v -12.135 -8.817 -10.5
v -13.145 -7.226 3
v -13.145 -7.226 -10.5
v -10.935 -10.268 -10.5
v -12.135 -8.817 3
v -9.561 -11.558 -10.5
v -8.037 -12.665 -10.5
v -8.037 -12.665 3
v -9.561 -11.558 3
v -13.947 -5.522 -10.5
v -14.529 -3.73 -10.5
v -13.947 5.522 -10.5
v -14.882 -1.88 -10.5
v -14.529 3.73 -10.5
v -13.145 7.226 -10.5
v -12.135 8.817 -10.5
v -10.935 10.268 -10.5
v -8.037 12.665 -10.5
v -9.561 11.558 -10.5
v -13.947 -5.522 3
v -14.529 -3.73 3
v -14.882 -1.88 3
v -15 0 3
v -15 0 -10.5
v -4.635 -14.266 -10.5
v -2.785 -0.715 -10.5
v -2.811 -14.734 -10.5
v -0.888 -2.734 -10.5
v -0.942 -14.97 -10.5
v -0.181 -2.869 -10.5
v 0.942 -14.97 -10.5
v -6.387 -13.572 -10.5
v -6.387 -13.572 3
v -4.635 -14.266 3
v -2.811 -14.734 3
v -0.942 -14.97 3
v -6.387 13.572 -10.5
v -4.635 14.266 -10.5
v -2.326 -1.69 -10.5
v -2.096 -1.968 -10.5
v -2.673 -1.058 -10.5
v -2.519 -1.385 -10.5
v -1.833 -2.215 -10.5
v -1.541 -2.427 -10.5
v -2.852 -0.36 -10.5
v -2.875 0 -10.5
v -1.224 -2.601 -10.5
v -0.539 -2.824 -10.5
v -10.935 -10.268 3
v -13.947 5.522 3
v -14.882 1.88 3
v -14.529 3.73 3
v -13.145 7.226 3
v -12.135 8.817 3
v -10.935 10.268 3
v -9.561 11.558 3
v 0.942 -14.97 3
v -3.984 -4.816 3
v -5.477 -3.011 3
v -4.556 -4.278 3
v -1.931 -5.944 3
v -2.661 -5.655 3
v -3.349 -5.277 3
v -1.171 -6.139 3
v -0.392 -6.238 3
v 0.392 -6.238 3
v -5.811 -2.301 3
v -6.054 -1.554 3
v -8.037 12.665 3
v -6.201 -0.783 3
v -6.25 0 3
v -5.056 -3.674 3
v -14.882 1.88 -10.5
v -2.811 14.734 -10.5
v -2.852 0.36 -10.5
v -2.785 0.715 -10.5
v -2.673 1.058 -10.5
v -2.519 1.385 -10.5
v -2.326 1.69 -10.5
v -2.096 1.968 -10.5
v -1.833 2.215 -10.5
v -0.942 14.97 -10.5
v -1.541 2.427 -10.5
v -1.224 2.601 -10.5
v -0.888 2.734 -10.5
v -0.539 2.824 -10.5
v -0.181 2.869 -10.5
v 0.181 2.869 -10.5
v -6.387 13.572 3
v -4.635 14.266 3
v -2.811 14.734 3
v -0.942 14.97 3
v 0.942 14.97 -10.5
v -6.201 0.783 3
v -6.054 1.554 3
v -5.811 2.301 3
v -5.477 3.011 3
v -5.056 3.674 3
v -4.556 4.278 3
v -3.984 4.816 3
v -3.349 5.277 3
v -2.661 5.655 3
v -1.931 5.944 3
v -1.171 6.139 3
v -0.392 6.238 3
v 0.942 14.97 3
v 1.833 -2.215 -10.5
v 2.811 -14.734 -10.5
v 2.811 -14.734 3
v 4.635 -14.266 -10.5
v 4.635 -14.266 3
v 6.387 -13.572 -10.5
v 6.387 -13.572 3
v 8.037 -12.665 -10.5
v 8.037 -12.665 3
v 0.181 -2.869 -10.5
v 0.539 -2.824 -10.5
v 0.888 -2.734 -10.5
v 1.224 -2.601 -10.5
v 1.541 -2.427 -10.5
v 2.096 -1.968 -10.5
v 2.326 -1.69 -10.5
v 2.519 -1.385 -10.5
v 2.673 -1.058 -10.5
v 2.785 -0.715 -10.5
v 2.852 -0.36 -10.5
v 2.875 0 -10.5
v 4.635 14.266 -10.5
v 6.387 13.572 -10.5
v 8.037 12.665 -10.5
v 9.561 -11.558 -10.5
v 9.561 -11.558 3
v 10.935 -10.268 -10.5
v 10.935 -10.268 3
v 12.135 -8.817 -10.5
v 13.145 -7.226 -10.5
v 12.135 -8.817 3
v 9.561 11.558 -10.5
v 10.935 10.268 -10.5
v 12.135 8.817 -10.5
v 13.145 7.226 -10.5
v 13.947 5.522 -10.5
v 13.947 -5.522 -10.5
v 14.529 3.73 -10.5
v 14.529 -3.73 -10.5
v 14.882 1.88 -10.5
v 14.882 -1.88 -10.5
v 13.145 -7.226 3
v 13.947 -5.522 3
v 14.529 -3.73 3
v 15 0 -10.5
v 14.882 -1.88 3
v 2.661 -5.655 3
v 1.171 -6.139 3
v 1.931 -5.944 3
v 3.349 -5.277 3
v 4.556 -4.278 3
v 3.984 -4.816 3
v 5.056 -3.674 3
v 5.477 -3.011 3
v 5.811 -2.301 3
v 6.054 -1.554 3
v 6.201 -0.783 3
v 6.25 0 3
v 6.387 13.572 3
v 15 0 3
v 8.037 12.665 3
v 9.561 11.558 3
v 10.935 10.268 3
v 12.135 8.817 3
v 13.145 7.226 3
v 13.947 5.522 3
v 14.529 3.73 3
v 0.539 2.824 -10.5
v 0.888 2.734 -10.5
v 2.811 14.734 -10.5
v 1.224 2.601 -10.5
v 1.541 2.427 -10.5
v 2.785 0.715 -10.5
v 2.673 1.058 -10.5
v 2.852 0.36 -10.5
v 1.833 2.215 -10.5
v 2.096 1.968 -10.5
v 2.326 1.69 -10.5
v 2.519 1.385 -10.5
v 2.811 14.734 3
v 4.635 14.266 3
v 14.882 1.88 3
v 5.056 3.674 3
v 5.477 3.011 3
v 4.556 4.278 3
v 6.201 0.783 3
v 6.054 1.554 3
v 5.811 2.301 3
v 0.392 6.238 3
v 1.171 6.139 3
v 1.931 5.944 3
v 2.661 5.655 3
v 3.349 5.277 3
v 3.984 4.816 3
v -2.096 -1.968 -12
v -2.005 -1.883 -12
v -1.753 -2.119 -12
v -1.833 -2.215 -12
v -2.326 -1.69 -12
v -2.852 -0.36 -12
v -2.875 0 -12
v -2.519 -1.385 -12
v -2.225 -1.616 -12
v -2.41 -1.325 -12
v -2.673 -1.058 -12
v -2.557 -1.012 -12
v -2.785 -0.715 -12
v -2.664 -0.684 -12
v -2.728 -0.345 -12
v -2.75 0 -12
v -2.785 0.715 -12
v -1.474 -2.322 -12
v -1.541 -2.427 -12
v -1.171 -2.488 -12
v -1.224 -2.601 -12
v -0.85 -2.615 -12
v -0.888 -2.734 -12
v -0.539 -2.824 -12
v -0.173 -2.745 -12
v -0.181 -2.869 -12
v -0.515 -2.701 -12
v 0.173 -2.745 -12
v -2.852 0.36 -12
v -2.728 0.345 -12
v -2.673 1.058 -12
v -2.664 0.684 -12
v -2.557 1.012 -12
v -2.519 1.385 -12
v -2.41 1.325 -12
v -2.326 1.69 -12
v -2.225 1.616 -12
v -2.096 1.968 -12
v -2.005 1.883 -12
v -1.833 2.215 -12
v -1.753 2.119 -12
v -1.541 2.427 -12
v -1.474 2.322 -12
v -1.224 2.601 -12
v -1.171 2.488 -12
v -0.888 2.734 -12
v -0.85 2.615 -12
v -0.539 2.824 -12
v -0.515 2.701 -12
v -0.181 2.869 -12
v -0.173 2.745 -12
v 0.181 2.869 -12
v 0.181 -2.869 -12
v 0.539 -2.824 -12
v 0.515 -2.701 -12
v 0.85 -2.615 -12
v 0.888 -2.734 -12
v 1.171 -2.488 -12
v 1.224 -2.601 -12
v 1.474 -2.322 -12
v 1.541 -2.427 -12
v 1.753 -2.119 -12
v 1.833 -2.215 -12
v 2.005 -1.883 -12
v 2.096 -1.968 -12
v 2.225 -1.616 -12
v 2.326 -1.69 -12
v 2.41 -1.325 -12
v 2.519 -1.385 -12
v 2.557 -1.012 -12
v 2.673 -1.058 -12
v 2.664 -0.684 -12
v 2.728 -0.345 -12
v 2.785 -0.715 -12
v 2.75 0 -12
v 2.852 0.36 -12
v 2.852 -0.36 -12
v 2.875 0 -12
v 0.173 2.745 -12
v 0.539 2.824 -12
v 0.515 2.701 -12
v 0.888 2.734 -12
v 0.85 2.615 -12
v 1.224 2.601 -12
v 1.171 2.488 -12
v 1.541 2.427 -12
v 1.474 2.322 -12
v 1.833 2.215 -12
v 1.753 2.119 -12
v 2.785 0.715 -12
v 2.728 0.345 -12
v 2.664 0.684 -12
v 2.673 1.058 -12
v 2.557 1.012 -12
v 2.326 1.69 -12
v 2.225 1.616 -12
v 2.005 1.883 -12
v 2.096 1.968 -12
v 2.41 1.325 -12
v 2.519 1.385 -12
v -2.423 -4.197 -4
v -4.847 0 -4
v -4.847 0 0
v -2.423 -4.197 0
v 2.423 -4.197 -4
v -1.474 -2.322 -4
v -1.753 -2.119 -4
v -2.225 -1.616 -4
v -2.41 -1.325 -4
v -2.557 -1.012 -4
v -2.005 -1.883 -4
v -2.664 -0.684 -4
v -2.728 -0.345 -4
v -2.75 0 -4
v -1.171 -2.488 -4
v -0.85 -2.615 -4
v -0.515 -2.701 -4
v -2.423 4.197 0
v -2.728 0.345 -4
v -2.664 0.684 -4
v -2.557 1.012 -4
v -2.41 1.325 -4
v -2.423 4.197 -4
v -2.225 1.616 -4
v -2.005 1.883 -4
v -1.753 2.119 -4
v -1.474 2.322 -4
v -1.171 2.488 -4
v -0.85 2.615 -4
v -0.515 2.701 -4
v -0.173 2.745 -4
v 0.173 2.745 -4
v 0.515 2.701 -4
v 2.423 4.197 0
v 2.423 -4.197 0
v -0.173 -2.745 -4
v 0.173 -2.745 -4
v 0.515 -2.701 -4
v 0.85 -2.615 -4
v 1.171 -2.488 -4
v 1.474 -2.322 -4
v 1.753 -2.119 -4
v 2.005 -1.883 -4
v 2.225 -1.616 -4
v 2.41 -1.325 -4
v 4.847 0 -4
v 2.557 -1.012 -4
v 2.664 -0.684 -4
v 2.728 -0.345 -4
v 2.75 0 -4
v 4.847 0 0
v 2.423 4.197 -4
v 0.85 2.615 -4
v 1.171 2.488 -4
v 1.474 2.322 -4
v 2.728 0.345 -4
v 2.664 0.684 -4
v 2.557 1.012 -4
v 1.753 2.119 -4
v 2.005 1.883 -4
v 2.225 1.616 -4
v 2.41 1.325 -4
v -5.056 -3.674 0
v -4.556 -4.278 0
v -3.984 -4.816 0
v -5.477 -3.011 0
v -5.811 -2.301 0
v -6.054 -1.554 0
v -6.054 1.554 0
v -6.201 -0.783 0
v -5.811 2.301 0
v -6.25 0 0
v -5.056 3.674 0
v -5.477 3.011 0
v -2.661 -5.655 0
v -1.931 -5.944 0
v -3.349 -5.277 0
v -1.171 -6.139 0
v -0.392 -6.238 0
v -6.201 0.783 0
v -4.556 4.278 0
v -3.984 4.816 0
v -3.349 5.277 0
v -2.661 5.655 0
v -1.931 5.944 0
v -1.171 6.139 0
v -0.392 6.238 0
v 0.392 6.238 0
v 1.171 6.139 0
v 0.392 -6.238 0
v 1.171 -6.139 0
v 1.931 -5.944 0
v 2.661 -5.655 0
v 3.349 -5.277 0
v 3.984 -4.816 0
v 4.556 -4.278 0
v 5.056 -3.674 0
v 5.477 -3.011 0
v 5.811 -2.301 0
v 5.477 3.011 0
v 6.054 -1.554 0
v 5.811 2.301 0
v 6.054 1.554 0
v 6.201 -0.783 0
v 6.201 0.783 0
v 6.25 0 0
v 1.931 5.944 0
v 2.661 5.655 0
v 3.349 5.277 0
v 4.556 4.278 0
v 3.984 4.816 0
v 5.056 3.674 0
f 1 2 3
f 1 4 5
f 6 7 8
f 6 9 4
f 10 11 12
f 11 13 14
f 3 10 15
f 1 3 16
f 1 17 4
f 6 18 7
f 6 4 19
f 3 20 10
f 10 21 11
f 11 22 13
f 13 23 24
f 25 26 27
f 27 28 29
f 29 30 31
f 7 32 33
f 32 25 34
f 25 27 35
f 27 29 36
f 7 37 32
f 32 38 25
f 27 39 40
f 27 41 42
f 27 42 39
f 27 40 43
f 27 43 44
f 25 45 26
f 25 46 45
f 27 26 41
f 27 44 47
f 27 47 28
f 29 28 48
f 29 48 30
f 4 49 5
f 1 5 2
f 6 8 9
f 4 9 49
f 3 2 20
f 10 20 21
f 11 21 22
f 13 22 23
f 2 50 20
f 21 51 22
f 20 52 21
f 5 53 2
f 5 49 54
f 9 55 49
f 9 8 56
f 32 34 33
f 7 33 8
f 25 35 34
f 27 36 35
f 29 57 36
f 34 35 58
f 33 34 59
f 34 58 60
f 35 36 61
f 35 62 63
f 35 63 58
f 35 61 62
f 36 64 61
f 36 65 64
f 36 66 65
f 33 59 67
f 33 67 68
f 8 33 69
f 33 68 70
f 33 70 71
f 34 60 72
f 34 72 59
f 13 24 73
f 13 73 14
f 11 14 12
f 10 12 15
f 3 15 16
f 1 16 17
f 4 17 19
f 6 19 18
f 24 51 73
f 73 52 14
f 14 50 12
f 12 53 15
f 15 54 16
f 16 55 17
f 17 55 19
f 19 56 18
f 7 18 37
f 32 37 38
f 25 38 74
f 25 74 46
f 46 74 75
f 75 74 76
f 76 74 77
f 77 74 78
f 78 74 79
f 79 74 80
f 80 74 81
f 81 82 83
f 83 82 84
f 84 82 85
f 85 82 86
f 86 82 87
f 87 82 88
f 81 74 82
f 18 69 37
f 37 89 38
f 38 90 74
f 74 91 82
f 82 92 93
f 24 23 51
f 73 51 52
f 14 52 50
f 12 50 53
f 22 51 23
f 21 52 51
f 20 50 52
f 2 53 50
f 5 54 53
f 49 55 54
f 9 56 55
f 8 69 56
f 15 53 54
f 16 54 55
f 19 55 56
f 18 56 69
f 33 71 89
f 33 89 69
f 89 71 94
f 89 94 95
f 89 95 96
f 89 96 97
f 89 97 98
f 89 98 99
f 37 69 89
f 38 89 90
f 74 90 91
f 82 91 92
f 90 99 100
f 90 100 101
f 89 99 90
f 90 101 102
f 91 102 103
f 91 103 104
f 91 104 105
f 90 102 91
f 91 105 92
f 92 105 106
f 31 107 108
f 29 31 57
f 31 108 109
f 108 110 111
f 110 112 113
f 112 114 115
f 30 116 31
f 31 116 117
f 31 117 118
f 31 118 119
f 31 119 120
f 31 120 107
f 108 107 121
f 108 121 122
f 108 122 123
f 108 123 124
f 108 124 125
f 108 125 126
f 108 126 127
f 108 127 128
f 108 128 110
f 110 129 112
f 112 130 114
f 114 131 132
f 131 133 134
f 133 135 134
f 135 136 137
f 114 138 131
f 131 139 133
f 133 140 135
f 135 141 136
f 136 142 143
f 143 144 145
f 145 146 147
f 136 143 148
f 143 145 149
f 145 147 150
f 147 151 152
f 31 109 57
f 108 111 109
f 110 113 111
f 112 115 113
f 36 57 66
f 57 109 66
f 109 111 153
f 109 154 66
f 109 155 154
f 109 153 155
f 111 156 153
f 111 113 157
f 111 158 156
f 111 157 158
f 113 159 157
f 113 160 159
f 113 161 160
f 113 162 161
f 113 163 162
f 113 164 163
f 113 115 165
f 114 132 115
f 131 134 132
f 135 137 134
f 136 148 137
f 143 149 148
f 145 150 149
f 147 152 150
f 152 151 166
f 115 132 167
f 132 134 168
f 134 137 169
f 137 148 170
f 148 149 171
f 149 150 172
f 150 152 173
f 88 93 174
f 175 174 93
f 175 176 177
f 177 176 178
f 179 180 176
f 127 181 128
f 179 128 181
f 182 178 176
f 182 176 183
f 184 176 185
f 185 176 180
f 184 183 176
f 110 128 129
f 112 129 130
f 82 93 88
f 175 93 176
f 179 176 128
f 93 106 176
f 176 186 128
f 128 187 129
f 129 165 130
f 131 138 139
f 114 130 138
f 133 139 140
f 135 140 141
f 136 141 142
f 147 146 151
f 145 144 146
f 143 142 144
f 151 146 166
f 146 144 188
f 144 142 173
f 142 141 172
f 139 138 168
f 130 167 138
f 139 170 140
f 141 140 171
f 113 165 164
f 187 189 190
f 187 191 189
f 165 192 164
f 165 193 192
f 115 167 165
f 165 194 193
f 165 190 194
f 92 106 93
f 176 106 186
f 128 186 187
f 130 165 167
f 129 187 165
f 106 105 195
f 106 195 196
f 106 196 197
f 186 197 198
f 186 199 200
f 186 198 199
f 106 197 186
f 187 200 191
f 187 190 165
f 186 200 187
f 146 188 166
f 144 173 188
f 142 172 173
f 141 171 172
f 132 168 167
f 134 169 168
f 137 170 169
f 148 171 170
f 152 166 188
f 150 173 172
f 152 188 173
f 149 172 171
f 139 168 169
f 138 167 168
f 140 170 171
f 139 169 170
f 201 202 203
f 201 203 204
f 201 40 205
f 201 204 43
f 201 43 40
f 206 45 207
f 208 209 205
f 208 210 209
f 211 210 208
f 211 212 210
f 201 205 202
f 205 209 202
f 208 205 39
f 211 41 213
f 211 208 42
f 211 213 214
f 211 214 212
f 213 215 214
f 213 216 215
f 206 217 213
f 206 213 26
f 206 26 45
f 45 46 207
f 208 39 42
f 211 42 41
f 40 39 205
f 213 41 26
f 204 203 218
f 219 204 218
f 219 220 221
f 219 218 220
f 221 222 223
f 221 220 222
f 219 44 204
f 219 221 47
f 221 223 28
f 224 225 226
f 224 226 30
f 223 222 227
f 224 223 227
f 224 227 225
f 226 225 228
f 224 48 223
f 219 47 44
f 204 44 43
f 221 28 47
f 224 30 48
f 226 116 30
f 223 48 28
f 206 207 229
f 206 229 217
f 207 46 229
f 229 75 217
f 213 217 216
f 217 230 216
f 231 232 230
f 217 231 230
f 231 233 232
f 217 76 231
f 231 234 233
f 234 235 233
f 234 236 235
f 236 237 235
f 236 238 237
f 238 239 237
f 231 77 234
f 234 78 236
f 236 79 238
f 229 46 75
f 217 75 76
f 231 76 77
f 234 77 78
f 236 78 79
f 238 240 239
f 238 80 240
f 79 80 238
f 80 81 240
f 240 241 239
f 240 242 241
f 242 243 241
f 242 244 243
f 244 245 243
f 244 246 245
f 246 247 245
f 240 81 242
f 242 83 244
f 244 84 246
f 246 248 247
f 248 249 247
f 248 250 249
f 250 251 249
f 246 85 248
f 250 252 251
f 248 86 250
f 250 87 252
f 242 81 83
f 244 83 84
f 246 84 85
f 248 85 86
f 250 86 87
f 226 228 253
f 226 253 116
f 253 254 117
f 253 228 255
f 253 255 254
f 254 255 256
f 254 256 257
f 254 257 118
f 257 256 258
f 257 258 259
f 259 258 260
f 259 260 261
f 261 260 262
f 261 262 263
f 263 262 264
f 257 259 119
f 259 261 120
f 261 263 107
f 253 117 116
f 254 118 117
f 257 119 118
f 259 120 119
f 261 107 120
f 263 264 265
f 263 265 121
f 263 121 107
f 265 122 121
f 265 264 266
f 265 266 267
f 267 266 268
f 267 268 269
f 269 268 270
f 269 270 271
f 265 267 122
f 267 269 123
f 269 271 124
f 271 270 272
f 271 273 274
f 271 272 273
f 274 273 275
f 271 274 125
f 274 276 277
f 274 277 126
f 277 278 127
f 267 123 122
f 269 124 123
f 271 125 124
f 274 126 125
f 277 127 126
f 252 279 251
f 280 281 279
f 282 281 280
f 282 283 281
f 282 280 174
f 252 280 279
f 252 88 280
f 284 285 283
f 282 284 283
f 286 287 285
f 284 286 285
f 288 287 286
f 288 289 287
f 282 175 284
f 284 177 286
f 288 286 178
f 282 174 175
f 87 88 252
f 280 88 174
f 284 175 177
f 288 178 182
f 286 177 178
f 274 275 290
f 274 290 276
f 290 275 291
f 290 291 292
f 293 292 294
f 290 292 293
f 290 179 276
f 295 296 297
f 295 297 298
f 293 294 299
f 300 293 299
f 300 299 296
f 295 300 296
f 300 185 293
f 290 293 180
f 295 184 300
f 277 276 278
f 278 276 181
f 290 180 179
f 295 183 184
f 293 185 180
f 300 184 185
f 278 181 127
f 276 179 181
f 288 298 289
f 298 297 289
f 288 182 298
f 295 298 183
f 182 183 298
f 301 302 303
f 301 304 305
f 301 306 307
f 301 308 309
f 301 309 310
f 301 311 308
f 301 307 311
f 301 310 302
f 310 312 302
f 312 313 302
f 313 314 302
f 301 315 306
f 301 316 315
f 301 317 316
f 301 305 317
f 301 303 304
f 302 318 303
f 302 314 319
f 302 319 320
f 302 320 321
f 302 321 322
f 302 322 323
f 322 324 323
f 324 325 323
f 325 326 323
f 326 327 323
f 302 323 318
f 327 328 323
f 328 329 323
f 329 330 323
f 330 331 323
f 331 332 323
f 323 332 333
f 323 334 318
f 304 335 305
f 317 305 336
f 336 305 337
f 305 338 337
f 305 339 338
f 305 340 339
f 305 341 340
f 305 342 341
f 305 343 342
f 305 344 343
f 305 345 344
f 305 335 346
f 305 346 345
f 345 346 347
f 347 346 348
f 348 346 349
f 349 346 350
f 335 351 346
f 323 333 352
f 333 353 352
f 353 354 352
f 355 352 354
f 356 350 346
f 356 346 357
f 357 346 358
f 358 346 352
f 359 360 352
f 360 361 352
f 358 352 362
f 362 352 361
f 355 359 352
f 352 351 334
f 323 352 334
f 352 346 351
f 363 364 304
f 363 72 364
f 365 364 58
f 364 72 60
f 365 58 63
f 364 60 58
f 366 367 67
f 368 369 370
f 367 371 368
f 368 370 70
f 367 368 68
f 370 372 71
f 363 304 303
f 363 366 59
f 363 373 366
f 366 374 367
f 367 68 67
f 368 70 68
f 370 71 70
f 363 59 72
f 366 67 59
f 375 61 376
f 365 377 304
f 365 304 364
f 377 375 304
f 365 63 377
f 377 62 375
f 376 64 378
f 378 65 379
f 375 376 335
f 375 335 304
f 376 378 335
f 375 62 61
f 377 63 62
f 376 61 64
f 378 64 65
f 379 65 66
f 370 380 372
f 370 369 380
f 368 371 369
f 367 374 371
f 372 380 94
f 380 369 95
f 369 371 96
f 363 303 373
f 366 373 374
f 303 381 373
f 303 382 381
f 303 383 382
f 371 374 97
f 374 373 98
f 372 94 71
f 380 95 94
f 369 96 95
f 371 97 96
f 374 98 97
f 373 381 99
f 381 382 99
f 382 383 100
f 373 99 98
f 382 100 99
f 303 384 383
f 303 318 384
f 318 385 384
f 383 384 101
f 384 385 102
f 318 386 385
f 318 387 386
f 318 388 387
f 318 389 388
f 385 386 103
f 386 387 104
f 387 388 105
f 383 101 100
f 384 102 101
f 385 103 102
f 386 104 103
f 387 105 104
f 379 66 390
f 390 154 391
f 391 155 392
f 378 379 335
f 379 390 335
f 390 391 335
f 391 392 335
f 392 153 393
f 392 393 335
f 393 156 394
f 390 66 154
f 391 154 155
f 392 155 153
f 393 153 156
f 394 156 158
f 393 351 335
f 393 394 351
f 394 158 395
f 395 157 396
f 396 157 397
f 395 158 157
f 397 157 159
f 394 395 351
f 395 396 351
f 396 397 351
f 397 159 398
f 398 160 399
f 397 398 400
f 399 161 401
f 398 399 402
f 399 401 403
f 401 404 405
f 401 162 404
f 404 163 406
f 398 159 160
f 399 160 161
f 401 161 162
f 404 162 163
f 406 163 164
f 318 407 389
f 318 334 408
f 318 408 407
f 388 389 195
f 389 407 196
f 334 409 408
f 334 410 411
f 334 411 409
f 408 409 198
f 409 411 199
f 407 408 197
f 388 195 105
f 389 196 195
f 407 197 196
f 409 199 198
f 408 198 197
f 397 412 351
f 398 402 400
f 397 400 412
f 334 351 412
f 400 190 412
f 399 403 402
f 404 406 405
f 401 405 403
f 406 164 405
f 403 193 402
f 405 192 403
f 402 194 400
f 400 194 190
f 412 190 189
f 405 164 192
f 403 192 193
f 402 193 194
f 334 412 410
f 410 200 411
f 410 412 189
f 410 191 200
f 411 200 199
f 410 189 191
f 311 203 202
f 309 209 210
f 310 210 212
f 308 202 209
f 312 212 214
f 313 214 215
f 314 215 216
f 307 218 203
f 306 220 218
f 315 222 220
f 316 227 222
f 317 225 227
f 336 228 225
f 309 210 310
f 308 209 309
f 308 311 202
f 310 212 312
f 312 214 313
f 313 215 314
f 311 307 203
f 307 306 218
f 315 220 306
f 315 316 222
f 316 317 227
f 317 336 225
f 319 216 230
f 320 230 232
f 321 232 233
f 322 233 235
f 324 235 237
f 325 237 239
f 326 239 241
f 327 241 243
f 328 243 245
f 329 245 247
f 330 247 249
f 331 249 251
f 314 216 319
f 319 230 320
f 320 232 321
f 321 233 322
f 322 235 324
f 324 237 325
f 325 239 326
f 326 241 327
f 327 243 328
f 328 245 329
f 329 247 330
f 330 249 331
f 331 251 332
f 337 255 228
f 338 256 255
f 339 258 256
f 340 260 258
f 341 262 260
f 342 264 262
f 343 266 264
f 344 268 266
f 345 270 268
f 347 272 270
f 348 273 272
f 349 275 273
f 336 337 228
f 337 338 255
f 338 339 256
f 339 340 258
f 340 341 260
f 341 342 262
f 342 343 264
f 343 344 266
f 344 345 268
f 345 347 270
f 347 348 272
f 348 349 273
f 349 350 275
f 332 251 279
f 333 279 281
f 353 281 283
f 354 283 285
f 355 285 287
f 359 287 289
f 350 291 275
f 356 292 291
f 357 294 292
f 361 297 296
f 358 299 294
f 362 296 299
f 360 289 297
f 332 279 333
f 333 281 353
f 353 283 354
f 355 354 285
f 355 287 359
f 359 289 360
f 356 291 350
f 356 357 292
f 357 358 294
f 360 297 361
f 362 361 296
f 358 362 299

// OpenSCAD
$fn = 50;

difference() {
	union() {
		translate(v = [0, 0, -10.5]) {
			cylinder(h = 13.5, r = 15.0);
		}
		#translate(v = [0, 0, -12.0]) {
			cylinder(h = 12, r = 2.875);
		}
	}
	union() {
		translate(v = [0, 0, 0]) {
			rotate(a = [0, 0, 0]) {
				difference() {
					union() {
						translate(v = [0, 0, -4]) {
							linear_extrude(height = 4) {
								polygon(points = [[4.8468, 0.0], [2.4234000000000004, 4.197451927062417], [-2.423399999999999, 4.197451927062417], [-4.8468, 5.935618106107392e-16], [-2.423400000000002, -4.197451927062416], [2.423399999999997, -4.197451927062419]]);
							}
						}
					}
					union();
				}
			}
		}
		#cylinder(h = 3, r = 6.25);
		#translate(v = [0, 0, -100.0]) {
			cylinder(h = 200, r = 2.75);
		}
	}
}
